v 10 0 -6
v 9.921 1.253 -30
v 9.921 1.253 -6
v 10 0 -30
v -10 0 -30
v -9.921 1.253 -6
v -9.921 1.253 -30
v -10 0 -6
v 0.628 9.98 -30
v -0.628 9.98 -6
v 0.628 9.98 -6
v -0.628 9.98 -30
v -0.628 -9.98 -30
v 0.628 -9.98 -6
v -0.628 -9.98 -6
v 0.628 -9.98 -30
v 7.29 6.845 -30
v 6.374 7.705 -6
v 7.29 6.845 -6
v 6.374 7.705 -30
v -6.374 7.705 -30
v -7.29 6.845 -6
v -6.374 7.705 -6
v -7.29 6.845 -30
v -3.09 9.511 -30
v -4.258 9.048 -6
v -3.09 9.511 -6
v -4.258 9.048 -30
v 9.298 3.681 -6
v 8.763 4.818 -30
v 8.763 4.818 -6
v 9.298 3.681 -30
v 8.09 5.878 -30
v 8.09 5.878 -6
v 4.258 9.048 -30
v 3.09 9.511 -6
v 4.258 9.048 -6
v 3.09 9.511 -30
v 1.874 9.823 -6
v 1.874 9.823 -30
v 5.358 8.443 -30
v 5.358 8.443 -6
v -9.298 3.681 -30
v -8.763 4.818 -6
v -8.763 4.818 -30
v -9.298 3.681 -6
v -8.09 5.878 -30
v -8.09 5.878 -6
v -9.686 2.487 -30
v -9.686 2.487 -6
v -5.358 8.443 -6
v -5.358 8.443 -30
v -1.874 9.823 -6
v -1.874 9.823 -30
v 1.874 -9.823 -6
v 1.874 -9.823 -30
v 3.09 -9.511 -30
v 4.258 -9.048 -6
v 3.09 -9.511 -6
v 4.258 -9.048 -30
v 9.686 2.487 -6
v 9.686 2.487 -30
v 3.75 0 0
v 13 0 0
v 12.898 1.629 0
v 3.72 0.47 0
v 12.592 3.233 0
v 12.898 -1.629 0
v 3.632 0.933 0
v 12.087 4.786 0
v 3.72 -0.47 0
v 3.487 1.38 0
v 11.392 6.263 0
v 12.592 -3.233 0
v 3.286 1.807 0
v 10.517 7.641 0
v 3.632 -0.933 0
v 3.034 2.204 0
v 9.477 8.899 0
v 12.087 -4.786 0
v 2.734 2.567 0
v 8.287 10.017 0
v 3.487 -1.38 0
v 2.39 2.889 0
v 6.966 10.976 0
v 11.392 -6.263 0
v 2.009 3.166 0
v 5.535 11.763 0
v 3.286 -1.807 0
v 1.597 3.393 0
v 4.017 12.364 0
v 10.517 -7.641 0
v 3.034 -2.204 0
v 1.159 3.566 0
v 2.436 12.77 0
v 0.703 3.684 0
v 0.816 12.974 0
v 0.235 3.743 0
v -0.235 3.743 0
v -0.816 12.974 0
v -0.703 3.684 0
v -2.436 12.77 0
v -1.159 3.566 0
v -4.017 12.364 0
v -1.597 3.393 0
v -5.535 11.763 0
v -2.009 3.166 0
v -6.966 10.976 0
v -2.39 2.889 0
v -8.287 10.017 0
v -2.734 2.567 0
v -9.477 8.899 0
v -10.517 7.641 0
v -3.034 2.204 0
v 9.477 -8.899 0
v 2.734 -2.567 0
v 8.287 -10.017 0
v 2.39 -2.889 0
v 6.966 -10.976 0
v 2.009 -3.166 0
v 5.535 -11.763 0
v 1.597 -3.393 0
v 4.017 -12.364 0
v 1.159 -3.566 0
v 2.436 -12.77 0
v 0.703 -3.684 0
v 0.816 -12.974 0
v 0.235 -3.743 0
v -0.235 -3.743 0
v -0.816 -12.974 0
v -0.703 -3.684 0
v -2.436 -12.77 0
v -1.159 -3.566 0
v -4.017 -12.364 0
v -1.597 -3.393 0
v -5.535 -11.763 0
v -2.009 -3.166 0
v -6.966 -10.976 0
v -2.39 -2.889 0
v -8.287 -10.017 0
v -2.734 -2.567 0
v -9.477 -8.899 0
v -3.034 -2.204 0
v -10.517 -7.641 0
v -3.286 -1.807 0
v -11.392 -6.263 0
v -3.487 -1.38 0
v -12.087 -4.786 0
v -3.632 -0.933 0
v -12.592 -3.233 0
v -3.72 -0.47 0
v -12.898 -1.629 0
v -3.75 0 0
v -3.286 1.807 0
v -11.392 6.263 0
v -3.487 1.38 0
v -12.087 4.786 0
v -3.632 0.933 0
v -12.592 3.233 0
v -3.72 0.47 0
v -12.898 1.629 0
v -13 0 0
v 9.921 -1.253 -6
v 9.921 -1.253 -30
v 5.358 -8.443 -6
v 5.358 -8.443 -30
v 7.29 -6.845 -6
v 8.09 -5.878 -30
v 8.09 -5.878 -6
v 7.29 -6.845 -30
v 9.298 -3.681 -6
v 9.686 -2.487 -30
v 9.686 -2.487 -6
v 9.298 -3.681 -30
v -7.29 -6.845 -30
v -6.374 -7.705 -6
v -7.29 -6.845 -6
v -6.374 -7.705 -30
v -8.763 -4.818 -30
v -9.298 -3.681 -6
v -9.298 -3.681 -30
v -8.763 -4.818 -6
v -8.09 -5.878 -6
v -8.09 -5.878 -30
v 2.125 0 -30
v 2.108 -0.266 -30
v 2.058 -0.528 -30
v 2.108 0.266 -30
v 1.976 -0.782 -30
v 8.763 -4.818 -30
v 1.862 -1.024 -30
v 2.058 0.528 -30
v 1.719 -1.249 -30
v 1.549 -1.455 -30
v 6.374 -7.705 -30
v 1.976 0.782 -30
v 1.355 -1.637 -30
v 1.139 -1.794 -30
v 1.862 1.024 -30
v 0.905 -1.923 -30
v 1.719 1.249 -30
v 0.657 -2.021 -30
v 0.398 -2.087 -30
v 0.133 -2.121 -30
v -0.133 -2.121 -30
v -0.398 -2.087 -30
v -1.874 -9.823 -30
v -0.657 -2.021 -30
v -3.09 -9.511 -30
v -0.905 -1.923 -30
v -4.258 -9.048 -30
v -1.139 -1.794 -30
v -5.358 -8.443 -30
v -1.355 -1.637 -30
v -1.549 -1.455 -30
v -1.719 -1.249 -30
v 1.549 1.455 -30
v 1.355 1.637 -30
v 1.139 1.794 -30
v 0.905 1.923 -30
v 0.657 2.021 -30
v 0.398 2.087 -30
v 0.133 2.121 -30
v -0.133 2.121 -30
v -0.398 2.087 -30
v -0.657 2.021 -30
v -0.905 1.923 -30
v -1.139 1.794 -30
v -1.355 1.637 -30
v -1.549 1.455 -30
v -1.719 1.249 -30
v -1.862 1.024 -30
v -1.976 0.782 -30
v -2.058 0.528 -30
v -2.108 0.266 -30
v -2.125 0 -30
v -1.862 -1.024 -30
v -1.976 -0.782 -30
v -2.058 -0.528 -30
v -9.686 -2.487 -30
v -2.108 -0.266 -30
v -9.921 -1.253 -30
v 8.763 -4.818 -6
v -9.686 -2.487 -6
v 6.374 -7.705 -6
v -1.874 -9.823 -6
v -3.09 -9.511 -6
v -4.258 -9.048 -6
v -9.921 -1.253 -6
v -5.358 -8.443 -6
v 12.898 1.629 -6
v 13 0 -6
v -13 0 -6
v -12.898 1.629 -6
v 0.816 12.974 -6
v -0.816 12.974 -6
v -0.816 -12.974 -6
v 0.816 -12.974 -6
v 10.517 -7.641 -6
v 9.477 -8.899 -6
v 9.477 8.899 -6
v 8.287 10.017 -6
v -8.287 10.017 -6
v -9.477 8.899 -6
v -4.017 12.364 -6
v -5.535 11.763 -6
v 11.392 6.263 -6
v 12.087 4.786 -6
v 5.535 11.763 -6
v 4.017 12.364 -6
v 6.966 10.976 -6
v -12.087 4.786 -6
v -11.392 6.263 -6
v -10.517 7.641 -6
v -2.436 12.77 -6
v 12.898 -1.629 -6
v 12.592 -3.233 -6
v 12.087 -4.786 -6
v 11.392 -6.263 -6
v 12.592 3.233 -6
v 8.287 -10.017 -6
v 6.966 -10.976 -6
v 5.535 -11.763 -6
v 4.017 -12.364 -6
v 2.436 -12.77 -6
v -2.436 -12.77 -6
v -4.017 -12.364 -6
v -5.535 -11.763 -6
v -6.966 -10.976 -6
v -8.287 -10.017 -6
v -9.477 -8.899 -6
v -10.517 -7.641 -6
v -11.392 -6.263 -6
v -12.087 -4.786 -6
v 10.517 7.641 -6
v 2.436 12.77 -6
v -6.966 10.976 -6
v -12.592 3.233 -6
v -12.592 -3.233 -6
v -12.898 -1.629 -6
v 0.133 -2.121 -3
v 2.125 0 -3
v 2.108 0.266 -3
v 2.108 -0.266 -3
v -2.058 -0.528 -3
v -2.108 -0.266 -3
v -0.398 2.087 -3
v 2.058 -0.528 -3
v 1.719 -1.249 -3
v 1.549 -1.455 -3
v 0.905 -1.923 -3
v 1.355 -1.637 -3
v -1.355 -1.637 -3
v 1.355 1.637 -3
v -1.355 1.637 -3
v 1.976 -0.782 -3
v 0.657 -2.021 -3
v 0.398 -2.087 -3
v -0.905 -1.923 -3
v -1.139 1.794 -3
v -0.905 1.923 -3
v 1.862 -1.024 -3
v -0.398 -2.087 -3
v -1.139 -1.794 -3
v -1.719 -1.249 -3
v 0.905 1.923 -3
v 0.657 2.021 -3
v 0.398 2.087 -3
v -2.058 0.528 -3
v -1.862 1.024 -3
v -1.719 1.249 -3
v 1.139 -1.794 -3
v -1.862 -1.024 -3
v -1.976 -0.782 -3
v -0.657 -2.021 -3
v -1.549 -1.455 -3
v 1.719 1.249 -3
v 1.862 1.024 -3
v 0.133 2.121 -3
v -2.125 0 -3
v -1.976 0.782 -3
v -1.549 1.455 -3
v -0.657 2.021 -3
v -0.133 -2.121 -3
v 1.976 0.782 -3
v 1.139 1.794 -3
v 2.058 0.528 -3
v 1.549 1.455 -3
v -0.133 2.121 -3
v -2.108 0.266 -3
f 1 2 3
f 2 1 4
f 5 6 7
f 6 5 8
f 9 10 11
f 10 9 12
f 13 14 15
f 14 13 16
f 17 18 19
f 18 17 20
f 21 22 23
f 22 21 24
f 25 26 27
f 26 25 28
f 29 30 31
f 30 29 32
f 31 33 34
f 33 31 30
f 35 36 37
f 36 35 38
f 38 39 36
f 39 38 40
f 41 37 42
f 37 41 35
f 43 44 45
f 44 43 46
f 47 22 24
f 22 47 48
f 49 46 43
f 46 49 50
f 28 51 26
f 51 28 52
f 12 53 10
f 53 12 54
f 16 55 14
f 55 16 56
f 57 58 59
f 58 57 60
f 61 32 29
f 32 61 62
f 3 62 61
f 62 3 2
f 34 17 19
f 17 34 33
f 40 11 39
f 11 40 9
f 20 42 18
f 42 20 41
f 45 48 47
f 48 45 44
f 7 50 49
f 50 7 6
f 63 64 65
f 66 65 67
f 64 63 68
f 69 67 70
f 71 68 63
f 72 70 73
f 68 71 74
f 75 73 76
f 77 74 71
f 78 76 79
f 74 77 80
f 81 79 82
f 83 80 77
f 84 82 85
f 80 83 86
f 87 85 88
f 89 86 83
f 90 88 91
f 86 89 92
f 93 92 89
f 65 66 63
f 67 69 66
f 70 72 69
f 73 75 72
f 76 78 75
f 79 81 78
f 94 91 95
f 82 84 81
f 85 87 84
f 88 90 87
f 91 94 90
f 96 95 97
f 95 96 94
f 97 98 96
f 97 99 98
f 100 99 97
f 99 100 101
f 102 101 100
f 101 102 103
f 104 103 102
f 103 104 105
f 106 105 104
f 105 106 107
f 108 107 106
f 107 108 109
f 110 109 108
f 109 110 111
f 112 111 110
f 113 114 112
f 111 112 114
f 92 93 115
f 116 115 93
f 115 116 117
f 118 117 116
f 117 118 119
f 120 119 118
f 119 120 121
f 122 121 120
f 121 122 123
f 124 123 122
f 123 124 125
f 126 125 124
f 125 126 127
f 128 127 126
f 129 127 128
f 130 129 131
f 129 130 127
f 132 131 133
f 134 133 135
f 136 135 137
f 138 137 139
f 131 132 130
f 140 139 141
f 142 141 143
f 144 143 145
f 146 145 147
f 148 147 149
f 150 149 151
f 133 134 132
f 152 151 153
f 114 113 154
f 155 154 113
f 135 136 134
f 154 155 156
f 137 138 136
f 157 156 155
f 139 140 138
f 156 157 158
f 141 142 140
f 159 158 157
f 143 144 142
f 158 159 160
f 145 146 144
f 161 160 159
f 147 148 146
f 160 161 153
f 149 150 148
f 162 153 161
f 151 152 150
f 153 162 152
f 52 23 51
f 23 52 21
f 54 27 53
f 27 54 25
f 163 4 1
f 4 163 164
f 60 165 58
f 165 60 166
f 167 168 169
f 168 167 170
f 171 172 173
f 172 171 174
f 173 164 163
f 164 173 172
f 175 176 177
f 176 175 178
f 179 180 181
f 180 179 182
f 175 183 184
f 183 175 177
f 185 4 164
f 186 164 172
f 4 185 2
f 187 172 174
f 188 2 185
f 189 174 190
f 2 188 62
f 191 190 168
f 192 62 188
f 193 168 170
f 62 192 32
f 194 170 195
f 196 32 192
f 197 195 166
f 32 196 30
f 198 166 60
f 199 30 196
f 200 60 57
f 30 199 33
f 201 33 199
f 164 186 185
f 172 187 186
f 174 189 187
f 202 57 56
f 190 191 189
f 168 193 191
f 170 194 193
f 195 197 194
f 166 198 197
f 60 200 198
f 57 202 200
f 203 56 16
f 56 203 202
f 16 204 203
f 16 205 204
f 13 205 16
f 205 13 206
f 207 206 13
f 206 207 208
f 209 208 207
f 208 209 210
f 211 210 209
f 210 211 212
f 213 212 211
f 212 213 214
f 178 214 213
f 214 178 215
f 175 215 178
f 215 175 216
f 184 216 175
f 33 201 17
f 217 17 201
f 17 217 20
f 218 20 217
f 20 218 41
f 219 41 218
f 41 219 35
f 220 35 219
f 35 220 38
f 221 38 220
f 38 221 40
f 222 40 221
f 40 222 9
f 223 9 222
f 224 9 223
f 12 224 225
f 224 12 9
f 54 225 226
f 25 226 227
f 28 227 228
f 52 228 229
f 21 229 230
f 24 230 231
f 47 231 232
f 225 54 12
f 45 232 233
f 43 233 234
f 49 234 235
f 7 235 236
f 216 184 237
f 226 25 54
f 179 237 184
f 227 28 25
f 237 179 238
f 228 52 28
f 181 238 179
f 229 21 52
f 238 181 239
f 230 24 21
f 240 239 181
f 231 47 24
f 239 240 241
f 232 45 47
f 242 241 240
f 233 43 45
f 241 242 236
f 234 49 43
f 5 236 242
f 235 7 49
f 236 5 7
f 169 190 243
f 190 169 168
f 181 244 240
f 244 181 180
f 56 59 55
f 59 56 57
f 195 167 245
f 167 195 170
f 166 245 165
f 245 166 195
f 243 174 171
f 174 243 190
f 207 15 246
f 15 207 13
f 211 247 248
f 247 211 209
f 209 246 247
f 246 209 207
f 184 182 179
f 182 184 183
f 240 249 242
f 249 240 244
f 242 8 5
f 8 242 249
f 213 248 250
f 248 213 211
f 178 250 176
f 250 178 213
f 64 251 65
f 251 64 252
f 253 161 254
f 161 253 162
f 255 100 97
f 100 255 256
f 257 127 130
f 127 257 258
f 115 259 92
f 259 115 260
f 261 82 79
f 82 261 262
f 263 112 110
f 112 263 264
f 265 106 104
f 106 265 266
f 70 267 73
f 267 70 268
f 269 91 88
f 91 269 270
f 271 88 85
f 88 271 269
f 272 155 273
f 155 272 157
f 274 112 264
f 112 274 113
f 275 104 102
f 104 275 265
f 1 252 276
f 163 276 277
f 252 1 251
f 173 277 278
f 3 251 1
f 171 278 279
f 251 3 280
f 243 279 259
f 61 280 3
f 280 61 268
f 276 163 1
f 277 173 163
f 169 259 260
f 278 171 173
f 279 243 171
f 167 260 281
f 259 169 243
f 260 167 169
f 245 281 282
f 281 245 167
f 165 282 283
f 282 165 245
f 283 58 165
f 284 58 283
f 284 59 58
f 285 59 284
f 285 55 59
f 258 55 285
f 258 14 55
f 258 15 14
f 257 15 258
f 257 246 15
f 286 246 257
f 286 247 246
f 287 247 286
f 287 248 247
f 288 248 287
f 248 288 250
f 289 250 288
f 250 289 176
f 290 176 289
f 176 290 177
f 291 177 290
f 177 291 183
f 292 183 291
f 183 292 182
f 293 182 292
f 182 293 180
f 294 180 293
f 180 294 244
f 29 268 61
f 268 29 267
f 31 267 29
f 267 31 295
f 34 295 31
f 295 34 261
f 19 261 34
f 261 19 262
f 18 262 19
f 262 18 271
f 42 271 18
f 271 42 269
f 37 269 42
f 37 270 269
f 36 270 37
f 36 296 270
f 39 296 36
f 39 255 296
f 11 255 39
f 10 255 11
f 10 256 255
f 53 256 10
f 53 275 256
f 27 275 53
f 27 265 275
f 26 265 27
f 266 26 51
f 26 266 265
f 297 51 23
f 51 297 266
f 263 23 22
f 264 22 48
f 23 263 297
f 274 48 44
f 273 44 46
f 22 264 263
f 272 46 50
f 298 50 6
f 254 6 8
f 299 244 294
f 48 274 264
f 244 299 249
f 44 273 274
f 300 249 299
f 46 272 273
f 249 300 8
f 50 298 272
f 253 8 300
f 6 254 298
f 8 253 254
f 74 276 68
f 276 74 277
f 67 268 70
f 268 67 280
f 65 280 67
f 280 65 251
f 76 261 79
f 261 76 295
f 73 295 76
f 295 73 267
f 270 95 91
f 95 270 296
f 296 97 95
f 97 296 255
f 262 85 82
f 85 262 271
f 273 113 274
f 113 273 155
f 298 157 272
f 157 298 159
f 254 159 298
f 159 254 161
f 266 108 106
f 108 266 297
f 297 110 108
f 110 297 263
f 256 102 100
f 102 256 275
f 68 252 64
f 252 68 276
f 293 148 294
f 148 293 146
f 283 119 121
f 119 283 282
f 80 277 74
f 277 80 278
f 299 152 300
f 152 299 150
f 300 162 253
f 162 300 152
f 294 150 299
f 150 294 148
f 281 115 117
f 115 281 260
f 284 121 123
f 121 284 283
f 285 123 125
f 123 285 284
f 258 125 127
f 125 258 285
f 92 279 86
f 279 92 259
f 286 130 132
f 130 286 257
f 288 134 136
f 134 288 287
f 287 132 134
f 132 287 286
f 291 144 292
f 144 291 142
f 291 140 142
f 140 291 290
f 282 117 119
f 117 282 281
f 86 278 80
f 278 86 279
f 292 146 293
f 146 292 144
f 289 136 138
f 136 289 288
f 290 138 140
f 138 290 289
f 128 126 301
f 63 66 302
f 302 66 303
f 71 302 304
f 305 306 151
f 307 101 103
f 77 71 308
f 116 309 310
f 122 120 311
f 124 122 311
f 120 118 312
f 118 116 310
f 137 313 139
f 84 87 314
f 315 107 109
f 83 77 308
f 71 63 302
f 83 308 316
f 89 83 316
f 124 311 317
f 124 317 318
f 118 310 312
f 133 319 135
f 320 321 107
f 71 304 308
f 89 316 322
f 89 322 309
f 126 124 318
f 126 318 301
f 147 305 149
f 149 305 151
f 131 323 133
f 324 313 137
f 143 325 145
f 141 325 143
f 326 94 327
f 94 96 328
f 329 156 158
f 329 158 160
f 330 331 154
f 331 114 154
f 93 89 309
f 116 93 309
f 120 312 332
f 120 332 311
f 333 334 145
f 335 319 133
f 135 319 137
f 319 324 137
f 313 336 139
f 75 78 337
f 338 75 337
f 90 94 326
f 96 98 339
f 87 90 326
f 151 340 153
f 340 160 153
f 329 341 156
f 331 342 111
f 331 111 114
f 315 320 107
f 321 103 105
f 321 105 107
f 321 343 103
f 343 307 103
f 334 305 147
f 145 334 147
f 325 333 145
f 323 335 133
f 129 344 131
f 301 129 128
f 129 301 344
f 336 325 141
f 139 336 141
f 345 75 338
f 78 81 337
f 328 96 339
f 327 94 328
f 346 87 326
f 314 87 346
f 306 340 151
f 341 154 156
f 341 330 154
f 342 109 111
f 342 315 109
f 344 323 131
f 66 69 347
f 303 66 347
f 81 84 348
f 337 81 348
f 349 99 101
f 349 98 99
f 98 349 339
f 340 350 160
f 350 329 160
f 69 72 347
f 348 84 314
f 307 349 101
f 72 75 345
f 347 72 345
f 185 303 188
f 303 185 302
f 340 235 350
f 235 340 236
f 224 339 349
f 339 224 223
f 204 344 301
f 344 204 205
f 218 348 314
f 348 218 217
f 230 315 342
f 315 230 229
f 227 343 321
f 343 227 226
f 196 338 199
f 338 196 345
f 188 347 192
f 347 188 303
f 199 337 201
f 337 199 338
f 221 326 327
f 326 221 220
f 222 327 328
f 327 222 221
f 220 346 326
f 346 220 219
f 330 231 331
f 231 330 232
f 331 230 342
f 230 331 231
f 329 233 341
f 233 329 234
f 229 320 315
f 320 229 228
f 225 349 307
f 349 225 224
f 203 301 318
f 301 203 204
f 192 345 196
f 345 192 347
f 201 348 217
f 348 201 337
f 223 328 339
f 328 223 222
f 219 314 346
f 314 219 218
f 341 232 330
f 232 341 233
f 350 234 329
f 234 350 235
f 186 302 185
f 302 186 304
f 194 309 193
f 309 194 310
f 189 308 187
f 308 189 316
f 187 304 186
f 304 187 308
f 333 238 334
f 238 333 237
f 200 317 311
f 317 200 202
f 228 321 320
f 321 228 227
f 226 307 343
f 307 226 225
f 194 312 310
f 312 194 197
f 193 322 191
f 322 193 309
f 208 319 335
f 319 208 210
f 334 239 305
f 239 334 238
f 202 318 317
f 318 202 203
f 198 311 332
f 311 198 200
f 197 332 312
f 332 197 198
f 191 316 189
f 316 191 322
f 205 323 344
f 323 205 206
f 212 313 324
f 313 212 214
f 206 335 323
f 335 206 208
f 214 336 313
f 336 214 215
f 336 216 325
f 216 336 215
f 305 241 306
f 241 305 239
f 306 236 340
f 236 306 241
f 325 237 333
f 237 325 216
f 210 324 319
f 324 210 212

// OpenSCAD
$fn = 50;


difference() {
	union() {
		translate(v = [0, 0, -30.0000000000]) {
			cylinder(h = 30, r = 10.0000000000);
		}
		translate(v = [0, 0, -6.0000000000]) {
			cylinder(h = 6, r = 13.0000000000);
		}
	}
	union() {
		translate(v = [0, 0, 0]) {
			rotate(a = [0, 0, 0]) {
				difference() {
					union() {
						#translate(v = [0, 0, -30.0000000000]) {
							cylinder(h = 30, r = 2.0000000000);
						}
						#translate(v = [0, 0, -3]) {
							cylinder(h = 3, r = 10.0000000000, r1 = 2.1250000000, r2 = 3.7500000000);
						}
						#translate(v = [0, 0, -30.0000000000]) {
							cylinder(h = 30, r = 2.1250000000);
						}
						#translate(v = [0, 0, -30.0000000000]) {
							cylinder(h = 30, r = 2.0000000000);
						}
					}
					union();
				}
			}
		}
	}
}
